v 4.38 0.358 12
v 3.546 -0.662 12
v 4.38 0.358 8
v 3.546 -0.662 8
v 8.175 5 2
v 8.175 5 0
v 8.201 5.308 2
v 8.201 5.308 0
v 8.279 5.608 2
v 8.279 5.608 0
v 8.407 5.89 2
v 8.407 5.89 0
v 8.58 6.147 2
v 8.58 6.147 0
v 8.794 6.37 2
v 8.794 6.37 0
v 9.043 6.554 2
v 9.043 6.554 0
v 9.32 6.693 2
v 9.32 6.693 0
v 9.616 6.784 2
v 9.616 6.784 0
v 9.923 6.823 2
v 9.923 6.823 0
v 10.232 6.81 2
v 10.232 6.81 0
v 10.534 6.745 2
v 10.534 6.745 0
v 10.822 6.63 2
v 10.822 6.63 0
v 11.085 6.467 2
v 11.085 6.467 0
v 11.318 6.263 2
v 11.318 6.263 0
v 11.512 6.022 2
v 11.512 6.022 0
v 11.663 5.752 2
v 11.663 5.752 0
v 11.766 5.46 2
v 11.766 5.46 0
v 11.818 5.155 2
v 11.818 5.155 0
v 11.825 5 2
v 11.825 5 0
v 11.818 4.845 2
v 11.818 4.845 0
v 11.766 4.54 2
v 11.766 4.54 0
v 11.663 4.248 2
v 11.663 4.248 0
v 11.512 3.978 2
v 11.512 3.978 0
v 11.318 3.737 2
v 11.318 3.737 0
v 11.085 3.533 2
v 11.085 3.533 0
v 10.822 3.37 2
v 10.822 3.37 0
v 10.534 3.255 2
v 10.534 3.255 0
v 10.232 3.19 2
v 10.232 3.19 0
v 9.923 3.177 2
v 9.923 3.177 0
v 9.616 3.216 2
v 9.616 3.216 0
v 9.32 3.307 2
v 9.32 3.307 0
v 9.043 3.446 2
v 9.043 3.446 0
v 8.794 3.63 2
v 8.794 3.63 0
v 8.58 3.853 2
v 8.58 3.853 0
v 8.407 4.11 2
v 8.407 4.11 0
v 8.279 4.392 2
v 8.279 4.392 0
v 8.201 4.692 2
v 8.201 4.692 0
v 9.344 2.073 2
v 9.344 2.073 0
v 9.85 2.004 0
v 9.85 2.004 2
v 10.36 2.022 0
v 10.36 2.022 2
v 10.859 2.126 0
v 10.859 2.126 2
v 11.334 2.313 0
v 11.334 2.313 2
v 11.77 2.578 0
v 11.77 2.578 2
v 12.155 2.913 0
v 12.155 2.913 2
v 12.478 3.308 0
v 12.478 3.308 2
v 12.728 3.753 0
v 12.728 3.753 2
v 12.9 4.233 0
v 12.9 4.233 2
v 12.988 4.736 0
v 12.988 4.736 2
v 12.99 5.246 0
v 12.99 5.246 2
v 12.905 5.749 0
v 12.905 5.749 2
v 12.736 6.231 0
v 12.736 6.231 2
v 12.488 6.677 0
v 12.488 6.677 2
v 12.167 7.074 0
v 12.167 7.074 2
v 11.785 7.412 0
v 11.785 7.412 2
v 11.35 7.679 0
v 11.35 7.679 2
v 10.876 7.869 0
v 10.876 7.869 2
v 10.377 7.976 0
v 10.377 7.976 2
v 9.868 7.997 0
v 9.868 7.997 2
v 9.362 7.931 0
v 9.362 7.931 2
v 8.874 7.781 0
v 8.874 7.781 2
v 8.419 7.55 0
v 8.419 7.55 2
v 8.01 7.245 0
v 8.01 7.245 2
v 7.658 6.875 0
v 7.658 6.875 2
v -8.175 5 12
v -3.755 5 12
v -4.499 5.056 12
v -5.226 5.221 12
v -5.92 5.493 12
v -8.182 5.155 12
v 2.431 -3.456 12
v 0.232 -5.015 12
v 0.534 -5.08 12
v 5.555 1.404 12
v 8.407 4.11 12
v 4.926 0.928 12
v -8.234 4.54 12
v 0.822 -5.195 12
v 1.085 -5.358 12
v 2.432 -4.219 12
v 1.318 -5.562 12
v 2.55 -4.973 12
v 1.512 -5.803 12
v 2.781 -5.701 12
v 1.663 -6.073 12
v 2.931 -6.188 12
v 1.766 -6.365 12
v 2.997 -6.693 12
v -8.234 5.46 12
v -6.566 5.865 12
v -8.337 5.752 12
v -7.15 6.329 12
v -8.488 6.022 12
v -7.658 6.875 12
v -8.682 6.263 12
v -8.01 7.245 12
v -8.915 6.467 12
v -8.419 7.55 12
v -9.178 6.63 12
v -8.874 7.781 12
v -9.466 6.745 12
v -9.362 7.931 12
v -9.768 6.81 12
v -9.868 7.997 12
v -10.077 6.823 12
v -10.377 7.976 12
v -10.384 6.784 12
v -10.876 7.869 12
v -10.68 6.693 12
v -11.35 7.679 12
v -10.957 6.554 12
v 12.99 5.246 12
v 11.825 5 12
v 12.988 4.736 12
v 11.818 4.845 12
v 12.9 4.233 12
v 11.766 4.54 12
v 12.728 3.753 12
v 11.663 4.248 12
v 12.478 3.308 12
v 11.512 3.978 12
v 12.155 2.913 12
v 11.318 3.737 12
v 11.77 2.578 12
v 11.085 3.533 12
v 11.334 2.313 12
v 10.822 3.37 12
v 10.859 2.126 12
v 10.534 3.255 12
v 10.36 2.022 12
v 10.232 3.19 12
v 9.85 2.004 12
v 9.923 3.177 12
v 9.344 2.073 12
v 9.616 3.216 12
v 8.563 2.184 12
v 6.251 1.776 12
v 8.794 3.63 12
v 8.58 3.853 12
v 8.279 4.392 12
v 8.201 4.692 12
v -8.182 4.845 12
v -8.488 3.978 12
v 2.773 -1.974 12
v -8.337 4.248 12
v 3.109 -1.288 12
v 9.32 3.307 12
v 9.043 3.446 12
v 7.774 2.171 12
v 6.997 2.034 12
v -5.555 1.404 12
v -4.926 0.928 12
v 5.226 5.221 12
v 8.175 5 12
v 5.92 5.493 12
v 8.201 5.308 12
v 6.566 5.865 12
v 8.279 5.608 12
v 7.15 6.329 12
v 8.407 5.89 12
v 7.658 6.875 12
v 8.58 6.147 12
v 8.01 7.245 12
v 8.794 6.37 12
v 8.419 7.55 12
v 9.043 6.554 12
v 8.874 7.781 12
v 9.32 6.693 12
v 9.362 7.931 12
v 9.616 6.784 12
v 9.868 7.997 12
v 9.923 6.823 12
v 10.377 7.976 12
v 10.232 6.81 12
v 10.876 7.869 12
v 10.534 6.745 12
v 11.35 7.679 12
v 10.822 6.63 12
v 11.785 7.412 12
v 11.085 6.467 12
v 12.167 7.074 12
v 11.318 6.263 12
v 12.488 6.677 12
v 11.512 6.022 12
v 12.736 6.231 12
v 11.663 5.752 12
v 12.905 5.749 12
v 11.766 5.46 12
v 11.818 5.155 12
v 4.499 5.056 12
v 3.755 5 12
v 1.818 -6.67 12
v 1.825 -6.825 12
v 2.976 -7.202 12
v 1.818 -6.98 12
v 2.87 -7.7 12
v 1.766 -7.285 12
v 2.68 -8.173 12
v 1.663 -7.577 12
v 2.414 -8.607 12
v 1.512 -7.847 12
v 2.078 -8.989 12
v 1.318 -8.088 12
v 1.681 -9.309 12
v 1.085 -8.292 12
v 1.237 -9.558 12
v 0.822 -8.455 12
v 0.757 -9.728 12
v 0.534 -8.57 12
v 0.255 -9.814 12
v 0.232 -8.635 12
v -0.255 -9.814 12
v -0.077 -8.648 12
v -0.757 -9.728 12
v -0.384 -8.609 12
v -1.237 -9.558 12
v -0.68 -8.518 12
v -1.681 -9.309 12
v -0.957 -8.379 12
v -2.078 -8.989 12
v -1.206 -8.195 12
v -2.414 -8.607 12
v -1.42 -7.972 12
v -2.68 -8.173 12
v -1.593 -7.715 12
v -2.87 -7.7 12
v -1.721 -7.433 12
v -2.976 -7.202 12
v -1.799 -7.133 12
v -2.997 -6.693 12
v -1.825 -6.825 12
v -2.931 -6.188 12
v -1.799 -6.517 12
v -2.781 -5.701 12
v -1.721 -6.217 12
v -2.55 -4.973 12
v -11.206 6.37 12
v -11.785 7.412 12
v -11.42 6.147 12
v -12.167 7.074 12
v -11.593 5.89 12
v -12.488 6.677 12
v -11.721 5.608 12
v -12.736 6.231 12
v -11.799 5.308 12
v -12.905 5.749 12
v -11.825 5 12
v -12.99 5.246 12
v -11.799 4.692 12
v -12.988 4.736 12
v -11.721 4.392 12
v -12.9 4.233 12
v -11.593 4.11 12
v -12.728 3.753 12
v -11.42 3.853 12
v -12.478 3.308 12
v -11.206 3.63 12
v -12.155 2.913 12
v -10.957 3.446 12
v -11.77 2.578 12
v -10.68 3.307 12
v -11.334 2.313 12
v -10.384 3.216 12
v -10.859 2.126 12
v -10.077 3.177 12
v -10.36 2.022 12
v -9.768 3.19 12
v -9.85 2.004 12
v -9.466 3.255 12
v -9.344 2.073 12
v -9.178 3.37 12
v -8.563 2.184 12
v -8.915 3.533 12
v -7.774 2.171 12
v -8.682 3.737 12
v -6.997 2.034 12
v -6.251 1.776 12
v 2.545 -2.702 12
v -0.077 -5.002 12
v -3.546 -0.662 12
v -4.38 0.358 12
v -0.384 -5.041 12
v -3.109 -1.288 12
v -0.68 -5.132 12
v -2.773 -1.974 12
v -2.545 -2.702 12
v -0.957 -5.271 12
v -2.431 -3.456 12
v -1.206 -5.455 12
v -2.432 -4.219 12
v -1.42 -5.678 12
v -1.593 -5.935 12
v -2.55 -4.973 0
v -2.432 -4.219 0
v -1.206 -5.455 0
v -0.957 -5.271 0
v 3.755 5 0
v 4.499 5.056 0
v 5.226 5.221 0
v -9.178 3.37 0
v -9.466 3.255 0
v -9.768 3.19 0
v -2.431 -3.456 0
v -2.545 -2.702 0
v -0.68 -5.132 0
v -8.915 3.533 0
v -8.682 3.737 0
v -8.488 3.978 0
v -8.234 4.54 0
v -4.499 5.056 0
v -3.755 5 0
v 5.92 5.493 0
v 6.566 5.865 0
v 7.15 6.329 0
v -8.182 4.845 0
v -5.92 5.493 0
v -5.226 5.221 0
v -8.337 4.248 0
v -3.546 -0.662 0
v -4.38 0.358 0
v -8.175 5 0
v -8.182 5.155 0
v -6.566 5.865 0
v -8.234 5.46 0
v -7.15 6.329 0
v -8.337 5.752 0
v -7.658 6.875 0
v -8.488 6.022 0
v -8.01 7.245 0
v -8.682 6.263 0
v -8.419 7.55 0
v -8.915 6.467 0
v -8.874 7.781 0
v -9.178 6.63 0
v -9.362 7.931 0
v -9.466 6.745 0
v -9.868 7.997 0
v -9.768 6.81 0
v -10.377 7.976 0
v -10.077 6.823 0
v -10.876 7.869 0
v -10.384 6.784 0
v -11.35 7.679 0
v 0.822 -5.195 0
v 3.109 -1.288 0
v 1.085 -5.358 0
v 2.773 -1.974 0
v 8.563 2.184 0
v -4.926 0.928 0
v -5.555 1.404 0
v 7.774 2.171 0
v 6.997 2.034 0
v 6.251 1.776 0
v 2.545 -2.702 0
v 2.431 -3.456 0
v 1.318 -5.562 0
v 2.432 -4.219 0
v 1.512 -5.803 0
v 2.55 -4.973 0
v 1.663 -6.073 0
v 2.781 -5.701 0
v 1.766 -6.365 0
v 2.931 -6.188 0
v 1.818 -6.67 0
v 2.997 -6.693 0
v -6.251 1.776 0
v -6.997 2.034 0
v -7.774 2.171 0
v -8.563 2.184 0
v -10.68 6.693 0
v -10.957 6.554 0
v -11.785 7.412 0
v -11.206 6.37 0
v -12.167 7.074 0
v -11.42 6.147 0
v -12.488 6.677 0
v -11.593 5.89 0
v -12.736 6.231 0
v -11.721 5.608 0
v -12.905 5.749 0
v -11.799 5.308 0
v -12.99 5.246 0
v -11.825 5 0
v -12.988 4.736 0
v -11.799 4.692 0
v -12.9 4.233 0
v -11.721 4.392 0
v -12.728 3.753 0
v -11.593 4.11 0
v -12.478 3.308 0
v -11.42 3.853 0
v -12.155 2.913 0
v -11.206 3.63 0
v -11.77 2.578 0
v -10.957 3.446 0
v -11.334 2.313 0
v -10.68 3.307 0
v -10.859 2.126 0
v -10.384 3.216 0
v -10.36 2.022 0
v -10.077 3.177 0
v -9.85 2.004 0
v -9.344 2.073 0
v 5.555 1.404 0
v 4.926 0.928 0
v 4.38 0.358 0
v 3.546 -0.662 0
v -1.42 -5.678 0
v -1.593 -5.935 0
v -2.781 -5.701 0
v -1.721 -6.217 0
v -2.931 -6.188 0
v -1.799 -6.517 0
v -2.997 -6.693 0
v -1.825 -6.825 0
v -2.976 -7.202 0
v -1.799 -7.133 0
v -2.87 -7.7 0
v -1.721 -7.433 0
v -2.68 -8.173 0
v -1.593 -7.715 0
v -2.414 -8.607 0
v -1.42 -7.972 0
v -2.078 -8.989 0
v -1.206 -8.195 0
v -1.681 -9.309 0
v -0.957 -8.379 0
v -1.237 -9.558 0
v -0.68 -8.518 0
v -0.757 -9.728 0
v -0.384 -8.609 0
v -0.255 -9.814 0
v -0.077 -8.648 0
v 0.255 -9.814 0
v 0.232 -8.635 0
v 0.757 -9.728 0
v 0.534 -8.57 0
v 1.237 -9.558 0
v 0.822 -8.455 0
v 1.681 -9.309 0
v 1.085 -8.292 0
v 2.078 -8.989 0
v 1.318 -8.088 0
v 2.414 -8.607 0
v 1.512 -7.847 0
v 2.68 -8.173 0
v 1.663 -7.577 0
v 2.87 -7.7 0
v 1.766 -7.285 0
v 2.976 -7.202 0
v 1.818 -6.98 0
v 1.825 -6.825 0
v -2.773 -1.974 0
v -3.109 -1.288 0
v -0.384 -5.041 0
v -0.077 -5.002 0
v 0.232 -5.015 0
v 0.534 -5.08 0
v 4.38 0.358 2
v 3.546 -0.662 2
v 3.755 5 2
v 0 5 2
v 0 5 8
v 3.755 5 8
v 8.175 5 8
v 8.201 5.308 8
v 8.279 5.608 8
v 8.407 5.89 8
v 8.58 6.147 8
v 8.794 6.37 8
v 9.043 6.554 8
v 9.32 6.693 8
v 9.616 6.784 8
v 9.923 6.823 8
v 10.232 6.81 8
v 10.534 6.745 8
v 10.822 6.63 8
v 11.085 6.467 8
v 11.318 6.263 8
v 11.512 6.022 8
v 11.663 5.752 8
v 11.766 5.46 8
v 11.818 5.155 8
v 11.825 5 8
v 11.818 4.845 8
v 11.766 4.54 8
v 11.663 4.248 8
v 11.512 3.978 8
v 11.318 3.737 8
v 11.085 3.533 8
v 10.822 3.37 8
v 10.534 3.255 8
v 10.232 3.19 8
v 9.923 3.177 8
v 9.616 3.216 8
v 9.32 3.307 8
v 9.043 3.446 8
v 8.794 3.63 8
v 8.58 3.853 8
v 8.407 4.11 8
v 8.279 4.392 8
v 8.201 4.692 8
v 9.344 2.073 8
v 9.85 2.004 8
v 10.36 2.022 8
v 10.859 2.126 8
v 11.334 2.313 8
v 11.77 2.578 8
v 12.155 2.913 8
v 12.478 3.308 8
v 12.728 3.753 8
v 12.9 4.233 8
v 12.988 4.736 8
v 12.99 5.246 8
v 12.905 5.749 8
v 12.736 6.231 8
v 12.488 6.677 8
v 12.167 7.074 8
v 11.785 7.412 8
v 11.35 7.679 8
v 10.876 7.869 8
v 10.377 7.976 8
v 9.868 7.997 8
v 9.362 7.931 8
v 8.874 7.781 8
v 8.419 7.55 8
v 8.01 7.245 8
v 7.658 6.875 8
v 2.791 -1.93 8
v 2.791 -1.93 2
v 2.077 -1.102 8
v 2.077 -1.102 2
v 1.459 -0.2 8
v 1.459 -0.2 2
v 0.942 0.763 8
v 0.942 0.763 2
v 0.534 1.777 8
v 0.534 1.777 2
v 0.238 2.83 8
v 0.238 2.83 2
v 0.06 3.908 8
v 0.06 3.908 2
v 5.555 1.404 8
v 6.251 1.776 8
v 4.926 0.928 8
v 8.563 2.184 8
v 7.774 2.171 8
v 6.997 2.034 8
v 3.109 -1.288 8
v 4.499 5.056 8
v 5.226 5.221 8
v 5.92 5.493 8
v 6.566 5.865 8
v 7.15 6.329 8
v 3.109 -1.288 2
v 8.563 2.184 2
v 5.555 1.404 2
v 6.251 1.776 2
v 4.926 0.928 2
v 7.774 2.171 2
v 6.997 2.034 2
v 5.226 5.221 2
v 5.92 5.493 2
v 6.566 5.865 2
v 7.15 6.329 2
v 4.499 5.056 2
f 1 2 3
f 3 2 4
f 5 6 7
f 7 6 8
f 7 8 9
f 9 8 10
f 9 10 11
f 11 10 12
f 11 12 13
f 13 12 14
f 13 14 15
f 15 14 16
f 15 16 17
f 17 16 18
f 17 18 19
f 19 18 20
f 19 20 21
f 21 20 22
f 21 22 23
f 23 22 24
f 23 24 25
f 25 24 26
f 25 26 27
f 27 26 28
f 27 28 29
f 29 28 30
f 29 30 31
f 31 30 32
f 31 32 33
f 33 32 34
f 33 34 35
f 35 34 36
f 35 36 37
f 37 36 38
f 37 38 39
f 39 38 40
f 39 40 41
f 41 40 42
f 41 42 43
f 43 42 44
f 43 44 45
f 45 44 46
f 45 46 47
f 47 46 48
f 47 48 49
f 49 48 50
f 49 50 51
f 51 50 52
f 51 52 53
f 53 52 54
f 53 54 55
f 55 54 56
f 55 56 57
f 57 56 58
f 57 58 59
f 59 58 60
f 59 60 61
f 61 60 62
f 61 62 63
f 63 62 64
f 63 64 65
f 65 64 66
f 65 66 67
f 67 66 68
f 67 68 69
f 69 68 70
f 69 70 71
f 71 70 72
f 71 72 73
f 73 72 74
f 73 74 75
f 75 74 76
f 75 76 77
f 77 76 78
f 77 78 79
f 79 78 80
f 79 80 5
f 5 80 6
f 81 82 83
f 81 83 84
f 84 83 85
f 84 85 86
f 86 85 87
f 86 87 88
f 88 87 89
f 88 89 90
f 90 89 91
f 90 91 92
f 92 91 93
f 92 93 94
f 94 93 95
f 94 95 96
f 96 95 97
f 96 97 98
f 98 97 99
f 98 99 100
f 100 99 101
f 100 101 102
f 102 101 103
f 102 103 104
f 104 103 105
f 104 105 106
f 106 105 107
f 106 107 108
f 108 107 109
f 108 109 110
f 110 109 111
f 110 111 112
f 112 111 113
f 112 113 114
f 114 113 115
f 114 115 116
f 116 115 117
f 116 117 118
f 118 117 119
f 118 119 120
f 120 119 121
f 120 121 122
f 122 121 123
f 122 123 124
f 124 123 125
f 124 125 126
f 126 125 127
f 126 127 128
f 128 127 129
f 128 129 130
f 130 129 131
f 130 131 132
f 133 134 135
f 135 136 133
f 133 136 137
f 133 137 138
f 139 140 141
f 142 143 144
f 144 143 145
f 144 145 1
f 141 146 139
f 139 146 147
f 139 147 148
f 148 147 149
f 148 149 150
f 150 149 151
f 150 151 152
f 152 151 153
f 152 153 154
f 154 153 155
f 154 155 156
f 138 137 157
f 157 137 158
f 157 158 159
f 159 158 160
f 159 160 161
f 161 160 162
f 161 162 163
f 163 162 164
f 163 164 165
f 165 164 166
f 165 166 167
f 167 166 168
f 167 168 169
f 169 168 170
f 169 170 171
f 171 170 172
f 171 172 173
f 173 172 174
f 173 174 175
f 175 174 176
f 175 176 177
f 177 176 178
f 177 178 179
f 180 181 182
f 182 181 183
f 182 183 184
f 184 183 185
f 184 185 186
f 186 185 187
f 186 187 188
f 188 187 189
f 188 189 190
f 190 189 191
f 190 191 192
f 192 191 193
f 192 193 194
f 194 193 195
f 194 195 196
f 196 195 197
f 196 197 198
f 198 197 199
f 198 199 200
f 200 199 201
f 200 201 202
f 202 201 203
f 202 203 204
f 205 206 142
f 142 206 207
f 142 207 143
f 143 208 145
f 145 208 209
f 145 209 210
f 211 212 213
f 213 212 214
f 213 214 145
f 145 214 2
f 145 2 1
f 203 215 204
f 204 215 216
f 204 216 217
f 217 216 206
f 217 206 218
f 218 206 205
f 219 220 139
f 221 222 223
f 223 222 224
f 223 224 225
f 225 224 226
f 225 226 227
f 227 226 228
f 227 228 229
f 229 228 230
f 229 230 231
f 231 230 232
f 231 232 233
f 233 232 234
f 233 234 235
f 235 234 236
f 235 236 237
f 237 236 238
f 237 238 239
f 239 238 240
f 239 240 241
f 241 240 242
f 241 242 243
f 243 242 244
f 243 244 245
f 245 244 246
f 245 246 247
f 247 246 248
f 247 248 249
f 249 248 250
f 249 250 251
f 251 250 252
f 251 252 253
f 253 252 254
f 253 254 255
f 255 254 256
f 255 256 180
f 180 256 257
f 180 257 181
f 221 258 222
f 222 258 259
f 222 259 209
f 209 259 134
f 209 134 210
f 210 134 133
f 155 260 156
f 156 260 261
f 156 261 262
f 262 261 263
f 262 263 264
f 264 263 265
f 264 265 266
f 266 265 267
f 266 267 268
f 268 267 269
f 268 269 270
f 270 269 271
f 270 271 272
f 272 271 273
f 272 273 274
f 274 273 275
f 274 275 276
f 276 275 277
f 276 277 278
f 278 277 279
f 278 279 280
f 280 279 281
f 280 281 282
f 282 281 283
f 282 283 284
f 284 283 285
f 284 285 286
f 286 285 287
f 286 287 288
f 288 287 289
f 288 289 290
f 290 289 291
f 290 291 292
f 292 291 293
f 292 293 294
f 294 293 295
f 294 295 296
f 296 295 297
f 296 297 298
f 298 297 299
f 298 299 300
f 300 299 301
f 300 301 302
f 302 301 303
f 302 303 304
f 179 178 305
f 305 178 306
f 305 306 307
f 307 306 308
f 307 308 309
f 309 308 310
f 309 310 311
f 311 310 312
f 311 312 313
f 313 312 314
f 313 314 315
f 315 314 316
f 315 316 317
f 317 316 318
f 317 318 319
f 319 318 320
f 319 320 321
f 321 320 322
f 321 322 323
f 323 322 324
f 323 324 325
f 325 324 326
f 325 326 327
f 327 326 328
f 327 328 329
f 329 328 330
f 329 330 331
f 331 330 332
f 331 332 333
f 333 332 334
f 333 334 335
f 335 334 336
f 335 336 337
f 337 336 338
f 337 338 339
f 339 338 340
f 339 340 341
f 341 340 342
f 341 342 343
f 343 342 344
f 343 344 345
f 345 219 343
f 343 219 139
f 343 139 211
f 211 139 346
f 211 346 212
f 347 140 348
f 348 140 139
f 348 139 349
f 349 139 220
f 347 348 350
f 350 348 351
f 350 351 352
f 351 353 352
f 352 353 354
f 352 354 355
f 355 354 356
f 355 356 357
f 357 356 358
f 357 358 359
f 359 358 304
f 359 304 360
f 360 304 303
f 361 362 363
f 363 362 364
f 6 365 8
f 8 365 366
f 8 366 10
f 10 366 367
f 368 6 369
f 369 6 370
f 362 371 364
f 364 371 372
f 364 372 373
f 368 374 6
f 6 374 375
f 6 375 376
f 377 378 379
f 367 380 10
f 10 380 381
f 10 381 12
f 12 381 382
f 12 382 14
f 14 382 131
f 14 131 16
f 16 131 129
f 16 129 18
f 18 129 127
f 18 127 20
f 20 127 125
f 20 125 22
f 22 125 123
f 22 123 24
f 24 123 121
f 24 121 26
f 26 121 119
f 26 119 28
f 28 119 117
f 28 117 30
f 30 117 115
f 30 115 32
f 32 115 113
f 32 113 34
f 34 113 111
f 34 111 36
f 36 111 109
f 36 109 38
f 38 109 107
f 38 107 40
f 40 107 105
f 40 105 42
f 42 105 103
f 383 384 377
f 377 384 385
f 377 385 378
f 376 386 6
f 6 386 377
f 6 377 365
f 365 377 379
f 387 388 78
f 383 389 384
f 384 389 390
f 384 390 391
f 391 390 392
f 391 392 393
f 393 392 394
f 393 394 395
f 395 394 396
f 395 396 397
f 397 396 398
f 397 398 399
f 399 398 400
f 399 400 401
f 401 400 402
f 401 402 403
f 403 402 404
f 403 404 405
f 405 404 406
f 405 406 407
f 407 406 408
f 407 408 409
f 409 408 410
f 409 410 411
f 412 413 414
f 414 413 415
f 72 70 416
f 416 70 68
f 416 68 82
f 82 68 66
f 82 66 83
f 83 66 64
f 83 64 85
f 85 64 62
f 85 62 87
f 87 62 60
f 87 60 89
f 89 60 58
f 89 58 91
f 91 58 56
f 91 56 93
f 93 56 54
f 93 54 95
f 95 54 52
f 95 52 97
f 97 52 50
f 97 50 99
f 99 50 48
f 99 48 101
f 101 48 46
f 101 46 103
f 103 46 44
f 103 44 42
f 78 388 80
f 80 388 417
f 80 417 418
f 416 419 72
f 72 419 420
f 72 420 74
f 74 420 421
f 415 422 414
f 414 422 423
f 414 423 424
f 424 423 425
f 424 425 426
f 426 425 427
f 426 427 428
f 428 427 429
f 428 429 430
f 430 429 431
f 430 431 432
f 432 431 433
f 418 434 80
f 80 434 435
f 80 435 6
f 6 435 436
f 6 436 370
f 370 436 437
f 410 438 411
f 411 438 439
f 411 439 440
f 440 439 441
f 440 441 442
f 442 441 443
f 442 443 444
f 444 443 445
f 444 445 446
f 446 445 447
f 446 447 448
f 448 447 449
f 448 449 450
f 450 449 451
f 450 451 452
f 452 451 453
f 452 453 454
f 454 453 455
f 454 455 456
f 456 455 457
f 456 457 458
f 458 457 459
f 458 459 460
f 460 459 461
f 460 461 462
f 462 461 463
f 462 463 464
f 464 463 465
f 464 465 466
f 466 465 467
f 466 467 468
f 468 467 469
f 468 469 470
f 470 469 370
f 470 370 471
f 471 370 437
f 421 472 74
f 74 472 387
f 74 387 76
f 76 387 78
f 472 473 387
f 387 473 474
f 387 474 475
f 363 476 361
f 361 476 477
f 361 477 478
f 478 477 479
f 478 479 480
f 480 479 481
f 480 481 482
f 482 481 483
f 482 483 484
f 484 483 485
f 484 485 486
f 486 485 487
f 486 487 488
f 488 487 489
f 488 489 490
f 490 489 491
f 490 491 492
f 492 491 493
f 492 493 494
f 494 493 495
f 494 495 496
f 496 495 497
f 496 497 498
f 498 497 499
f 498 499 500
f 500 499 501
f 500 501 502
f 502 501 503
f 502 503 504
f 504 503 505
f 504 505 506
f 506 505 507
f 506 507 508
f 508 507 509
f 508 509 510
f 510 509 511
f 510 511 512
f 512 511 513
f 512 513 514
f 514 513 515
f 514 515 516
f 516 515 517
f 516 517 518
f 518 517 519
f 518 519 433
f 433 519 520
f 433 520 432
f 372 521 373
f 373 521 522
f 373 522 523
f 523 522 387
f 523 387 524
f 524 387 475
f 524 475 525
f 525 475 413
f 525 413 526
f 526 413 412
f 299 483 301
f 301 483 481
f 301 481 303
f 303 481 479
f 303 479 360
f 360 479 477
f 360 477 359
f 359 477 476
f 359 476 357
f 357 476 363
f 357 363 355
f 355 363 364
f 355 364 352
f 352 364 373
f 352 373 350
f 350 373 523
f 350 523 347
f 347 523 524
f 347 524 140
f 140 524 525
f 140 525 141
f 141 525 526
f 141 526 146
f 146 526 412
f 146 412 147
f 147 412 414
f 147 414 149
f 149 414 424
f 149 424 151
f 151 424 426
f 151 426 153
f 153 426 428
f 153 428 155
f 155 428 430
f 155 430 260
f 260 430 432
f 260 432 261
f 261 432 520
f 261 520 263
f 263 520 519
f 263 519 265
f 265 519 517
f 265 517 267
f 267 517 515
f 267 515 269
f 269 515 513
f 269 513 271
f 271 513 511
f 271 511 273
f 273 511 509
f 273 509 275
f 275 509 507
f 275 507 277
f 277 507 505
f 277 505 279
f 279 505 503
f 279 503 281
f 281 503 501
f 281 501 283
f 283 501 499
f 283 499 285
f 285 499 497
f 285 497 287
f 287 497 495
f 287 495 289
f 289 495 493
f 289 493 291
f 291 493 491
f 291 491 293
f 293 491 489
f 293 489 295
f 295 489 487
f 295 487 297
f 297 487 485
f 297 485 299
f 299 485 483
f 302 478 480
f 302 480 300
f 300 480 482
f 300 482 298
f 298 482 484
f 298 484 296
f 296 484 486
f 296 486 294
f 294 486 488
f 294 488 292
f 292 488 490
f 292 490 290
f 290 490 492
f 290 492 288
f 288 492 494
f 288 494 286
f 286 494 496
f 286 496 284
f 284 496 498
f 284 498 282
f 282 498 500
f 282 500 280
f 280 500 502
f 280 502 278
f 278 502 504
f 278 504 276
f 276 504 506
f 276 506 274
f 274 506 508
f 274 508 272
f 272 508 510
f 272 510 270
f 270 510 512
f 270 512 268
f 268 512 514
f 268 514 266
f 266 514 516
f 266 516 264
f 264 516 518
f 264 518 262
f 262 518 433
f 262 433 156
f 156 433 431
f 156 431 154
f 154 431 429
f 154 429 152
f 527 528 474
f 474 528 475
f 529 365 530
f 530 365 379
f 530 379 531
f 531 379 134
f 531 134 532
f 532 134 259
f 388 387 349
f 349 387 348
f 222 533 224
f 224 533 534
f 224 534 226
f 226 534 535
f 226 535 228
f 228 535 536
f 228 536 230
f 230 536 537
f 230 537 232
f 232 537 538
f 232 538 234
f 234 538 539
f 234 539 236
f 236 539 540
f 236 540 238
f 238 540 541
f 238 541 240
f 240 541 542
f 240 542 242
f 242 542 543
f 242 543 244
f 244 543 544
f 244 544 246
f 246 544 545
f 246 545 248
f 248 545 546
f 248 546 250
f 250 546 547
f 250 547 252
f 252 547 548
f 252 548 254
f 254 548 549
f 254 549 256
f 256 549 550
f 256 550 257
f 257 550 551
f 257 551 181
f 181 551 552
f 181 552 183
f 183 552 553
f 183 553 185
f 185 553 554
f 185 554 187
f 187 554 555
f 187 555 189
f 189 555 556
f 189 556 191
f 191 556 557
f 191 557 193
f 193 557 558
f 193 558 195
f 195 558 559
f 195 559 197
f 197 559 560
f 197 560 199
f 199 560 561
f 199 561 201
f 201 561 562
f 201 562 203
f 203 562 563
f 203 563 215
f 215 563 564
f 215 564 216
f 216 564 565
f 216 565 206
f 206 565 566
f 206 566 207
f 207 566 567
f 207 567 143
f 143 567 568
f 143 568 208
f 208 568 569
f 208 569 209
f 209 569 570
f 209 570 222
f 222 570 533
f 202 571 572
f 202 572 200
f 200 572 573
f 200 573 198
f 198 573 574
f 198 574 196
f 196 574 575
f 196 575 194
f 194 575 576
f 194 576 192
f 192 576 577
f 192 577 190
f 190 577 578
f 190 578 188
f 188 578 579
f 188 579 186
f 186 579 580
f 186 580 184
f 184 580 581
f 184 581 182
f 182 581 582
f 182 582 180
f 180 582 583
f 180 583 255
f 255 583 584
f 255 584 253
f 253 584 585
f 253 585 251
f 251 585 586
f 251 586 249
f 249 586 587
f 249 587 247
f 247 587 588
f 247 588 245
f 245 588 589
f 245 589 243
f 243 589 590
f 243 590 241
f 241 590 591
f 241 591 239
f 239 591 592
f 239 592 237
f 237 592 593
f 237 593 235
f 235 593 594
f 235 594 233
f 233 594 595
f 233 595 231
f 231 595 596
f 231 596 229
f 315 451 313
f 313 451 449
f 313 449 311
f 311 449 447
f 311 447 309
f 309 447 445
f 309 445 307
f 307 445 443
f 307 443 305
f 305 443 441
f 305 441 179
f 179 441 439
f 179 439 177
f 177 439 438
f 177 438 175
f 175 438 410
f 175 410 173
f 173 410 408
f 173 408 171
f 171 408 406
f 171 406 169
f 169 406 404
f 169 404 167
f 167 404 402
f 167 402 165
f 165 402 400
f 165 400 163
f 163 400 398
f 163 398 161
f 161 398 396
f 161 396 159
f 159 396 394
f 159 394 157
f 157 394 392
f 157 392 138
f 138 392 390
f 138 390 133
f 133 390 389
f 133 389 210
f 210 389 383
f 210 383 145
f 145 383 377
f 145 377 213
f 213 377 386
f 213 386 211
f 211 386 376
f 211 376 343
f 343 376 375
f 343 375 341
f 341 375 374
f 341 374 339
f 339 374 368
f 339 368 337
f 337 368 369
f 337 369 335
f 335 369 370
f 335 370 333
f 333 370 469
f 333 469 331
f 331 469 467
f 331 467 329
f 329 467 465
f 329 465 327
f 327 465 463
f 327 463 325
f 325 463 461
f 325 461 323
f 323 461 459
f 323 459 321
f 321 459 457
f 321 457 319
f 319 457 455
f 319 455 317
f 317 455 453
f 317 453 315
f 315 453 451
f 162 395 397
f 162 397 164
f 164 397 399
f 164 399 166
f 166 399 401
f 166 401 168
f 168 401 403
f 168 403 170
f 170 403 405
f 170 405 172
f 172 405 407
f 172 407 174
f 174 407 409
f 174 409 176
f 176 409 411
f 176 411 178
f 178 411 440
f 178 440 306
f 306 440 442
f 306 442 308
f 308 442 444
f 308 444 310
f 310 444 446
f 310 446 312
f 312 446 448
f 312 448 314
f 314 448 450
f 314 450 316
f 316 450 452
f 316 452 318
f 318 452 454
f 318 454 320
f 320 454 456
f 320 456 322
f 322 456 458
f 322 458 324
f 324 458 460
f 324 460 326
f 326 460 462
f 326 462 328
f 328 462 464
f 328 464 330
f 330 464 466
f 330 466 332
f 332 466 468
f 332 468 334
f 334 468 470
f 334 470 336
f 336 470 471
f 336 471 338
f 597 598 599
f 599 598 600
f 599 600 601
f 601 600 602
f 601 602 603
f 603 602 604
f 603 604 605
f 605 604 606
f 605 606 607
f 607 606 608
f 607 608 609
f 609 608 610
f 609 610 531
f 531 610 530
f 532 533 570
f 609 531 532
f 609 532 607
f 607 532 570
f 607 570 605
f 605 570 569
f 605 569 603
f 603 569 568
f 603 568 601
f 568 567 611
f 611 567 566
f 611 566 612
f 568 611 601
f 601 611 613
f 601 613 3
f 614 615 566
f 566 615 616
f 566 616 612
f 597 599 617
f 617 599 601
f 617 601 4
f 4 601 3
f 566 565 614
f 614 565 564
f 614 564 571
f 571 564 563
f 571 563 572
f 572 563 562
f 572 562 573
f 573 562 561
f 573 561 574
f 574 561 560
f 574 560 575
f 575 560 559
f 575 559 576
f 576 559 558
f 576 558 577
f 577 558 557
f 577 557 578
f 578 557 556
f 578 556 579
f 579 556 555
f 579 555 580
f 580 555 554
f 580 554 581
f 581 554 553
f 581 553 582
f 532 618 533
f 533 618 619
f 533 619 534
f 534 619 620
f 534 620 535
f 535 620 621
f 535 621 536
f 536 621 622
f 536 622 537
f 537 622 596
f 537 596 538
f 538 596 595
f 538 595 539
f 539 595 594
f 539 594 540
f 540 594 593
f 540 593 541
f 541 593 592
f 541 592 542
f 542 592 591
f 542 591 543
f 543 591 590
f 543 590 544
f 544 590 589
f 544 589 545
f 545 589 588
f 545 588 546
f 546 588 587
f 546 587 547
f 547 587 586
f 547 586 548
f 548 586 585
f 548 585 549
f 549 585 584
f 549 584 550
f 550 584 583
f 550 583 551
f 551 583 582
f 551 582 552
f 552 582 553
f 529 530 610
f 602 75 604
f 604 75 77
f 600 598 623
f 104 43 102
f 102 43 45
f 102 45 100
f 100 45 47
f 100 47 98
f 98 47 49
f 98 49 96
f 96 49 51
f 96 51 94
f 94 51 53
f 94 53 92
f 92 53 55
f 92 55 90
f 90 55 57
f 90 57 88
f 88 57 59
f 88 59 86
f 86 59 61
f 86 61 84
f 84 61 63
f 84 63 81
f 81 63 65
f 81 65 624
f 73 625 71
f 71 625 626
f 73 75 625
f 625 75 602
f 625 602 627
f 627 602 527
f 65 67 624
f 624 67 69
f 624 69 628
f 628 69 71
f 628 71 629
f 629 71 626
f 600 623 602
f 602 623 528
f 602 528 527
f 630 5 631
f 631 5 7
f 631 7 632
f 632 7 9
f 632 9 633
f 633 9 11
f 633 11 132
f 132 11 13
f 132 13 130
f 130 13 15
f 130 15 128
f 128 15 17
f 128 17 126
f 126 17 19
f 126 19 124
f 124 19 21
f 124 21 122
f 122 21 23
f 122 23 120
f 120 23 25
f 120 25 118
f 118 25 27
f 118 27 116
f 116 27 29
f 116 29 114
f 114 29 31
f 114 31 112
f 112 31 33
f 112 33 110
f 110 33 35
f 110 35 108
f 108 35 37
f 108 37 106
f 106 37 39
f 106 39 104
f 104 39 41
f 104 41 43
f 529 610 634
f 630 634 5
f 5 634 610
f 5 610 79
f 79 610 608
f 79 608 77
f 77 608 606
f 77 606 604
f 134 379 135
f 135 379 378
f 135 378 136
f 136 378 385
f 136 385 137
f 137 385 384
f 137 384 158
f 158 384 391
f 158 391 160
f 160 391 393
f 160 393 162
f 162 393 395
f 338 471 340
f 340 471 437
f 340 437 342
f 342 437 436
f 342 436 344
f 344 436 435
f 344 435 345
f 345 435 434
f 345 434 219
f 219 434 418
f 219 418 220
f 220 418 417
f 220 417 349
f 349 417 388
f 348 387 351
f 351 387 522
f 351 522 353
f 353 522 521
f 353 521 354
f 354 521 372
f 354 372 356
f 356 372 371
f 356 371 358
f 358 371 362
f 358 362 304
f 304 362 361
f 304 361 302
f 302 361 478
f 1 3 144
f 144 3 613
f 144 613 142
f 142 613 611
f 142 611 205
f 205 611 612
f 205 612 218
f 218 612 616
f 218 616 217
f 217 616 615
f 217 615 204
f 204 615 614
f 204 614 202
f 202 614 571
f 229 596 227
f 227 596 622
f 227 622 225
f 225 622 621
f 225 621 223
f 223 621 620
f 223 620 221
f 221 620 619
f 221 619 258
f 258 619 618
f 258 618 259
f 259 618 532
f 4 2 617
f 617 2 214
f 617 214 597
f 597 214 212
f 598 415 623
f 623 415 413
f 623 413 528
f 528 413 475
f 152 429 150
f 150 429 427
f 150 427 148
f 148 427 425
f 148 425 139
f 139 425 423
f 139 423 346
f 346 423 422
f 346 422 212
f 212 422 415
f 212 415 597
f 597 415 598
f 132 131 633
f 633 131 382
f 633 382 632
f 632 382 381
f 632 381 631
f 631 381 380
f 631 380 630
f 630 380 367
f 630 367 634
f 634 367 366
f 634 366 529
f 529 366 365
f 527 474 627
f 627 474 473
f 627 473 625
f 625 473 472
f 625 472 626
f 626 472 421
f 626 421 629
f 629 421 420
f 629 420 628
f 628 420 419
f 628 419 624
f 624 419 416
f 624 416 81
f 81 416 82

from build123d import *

# Parameters (mm, degrees)
ESQUISSE2_R             = 3
ESQUISSE2_R_2           = 1.825
BOSS_EXTRU_1_DEPTH      = 12
ESQUISSE3_R             = 10
ENL_V_MAT_EXTRU_1_DEPTH = 6
CONG_1_R                = 5
FILLET1_R               = 5


with BuildPart() as part:
    # Esquisse2 → Boss.-Extru.1 (new body)
    # profile 1 of 4: a face of its own
    with BuildSketch(Plane.XY):
        with Locations((-10, 5)):
            Circle(ESQUISSE2_R)
        with Locations((-10, 5)):
            Circle(ESQUISSE2_R_2, mode=Mode.SUBTRACT)
    # profile 2 of 4: a face of its own
    with BuildSketch(Plane.XY):
        with Locations((10, 5)):
            Circle(ESQUISSE2_R)
        with Locations((10, 5)):
            Circle(ESQUISSE2_R_2, mode=Mode.SUBTRACT)
    # profile 3 of 4: a face of its own
    with BuildSketch(Plane.XY):
        with Locations((0, -6.825)):
            Circle(ESQUISSE2_R)
        with Locations((0, -6.825)):
            Circle(ESQUISSE2_R_2, mode=Mode.SUBTRACT)
    # profile 4 of 4: a face of its own
    with BuildSketch(Plane.XY):
        Polygon((-8.175, 5), (8.175, 5), (0, -5), align=None)
    extrude(amount=BOSS_EXTRU_1_DEPTH)

    # Esquisse3 → Enlèv. mat.-Extru.1 (cut)
    with BuildSketch(Plane.XY.offset(2)):
        with Locations((10, 5)):
            Circle(ESQUISSE3_R)
    extrude(amount=ENL_V_MAT_EXTRU_1_DEPTH, mode=Mode.SUBTRACT)

    # Congé1
    # the kernel refuses this fillet: 5 mm, written as the material it adds along each edge
    with BuildSketch(Plane(origin=(-7, 5, 0), x_dir=(-0.3311912213512006, 0.9435636570469954, 0), z_dir=(0, 0, 1))) as cong_1_piece_1:
        with BuildLine():
            CenterArc((3.643103435, -4.717818285), CONG_1_R, 109.341093727, 51.317812547)
            Line((-1.07471485, -3.061862178), (0, 0))
            ThreePointArc((0, 0), (0.993573664, -0.169309029), (1.987147328, 0))
        make_face()
    extrude(amount=12)
    with BuildSketch(Plane(origin=(-7.231093941, 3.845374851, 12), x_dir=(-0.7661000074497634, -0.6427213848826507, 0), z_dir=(0, 0, -1))) as cong_1_piece_2:
        with BuildLine():
            CenterArc((5.056907819, -4.440322454), CONG_1_R, 117.368969646, 63.360078756)
            Line((0.057312583, -4.503942212), (0, 0))
            ThreePointArc((0, 0), (1.379156678, -0.335806528), (2.758313356, 0))
        make_face()
    extrude(amount=12)
    with BuildSketch(Plane(origin=(-0.858096974, -3.950340093, 12), x_dir=(-0.6329215353519139, 0.7742159453846039, 0), z_dir=(0, 0, -1))) as cong_1_piece_3:
        with BuildLine():
            CenterArc((4.246739065, -5), CONG_1_R, 90, 61.27443838)
            ThreePointArc((-0.137920096, -2.596926126), (0.227062491, -1.314184518), (0, 0))
            Line((0, 0), (4.246739065, 0))
        make_face()
    extrude(amount=12)
    with BuildSketch(Plane(origin=(7.231093941, 3.845374851, 12), x_dir=(-0.6329215353519138, -0.774215945384604, 0), z_dir=(0, 0, -1))) as cong_1_piece_4:
        with BuildLine():
            CenterArc((4.504306848, -5), CONG_1_R, 90, 63.360078756)
            ThreePointArc((0.035096646, -2.758090063), (0.353327666, -1.374772245), (0, 0))
            Line((0, 0), (4.504306848, 0))
        make_face()
    extrude(amount=4)
    with BuildSketch(Plane(origin=(7, 5, 12), x_dir=(-1, 0, 0), z_dir=(0, 0, -1))) as cong_1_piece_5:
        with BuildLine():
            CenterArc((3.244997998, 5), CONG_1_R, 218.682187453, 51.317812547)
            ThreePointArc((-0.658125751, 1.875), (-0.169309029, 0.993573664), (0, 0))
            Line((0, 0), (3.244997998, 0))
        make_face()
    extrude(amount=4)
    with BuildSketch(Plane(origin=(0.858096974, -3.950340093, 12), x_dir=(0.7395598752725667, -0.6730907746261462, 0), z_dir=(0, 0, -1))) as cong_1_piece_6_section:
        with BuildLine():
            CenterArc((4.767740899, -4.505933799), CONG_1_R, 115.685497342, 61.27443838)
            Line((-0.225222573, -4.240762606), (0, 0))
            ThreePointArc((0, 0), (1.300292973, -0.29643972), (2.600585945, 0))
        make_face()
    cong_1_piece_6 = extrude(amount=12, mode=Mode.PRIVATE)
    cong_1_piece_6 = cong_1_piece_6 - Plane(origin=(10, 5, 10), x_dir=(1, 0, 0), z_dir=(0, 0, -1)) * Cylinder(10, 41, mode=Mode.PRIVATE)
    add(cong_1_piece_6)
    with BuildSketch(Plane(origin=(0.858096974, -3.950340093, 12), x_dir=(0.7395598752725667, -0.6730907746261462, 0), z_dir=(0, 0, -1))) as cong_1_piece_7_section:
        with BuildLine():
            CenterArc((4.767740899, -4.505933799), CONG_1_R, 115.685497342, 61.27443838)
            Line((-0.225222573, -4.240762606), (0, 0))
            ThreePointArc((0, 0), (1.300292973, -0.29643972), (2.600585945, 0))
        make_face()
    cong_1_piece_7 = extrude(amount=22.616847663, mode=Mode.PRIVATE)
    cong_1_piece_7 = split(cong_1_piece_7, bisect_by=Plane(origin=(2.909028405, -1.544063306, 8), z_dir=(0, 0, 1)), keep=Keep.TOP, mode=Mode.PRIVATE)
    add(cong_1_piece_7)
    with BuildSketch(Plane(origin=(0.858096974, -3.950340093, 22.616847663), x_dir=(0.7395598752725666, -0.6730907746261463, 0), z_dir=(0, 0, -1))) as cong_1_piece_8_section:
        with BuildLine():
            CenterArc((4.767740899, -4.505933799), CONG_1_R, 115.685497342, 61.27443838)
            Line((-0.225222573, -4.240762606), (0, 0))
            ThreePointArc((0, 0), (1.300292973, -0.29643972), (2.600585945, 0))
        make_face()
    cong_1_piece_8 = extrude(amount=22.616847663, mode=Mode.PRIVATE)
    cong_1_piece_8 = split(cong_1_piece_8, bisect_by=Plane(origin=(2.909028405, -1.544063306, 2), z_dir=(0, 0, -1)), keep=Keep.TOP, mode=Mode.PRIVATE)
    add(cong_1_piece_8)

    # Fillet1
    fillet1_edges = [part.edges().sort_by_distance(p)[0] for p in [
        (7.231093941, 3.845374851, 1),
        (7, 5, 1),
    ]]
    fillet(fillet1_edges, radius=FILLET1_R)


solid = part.part
